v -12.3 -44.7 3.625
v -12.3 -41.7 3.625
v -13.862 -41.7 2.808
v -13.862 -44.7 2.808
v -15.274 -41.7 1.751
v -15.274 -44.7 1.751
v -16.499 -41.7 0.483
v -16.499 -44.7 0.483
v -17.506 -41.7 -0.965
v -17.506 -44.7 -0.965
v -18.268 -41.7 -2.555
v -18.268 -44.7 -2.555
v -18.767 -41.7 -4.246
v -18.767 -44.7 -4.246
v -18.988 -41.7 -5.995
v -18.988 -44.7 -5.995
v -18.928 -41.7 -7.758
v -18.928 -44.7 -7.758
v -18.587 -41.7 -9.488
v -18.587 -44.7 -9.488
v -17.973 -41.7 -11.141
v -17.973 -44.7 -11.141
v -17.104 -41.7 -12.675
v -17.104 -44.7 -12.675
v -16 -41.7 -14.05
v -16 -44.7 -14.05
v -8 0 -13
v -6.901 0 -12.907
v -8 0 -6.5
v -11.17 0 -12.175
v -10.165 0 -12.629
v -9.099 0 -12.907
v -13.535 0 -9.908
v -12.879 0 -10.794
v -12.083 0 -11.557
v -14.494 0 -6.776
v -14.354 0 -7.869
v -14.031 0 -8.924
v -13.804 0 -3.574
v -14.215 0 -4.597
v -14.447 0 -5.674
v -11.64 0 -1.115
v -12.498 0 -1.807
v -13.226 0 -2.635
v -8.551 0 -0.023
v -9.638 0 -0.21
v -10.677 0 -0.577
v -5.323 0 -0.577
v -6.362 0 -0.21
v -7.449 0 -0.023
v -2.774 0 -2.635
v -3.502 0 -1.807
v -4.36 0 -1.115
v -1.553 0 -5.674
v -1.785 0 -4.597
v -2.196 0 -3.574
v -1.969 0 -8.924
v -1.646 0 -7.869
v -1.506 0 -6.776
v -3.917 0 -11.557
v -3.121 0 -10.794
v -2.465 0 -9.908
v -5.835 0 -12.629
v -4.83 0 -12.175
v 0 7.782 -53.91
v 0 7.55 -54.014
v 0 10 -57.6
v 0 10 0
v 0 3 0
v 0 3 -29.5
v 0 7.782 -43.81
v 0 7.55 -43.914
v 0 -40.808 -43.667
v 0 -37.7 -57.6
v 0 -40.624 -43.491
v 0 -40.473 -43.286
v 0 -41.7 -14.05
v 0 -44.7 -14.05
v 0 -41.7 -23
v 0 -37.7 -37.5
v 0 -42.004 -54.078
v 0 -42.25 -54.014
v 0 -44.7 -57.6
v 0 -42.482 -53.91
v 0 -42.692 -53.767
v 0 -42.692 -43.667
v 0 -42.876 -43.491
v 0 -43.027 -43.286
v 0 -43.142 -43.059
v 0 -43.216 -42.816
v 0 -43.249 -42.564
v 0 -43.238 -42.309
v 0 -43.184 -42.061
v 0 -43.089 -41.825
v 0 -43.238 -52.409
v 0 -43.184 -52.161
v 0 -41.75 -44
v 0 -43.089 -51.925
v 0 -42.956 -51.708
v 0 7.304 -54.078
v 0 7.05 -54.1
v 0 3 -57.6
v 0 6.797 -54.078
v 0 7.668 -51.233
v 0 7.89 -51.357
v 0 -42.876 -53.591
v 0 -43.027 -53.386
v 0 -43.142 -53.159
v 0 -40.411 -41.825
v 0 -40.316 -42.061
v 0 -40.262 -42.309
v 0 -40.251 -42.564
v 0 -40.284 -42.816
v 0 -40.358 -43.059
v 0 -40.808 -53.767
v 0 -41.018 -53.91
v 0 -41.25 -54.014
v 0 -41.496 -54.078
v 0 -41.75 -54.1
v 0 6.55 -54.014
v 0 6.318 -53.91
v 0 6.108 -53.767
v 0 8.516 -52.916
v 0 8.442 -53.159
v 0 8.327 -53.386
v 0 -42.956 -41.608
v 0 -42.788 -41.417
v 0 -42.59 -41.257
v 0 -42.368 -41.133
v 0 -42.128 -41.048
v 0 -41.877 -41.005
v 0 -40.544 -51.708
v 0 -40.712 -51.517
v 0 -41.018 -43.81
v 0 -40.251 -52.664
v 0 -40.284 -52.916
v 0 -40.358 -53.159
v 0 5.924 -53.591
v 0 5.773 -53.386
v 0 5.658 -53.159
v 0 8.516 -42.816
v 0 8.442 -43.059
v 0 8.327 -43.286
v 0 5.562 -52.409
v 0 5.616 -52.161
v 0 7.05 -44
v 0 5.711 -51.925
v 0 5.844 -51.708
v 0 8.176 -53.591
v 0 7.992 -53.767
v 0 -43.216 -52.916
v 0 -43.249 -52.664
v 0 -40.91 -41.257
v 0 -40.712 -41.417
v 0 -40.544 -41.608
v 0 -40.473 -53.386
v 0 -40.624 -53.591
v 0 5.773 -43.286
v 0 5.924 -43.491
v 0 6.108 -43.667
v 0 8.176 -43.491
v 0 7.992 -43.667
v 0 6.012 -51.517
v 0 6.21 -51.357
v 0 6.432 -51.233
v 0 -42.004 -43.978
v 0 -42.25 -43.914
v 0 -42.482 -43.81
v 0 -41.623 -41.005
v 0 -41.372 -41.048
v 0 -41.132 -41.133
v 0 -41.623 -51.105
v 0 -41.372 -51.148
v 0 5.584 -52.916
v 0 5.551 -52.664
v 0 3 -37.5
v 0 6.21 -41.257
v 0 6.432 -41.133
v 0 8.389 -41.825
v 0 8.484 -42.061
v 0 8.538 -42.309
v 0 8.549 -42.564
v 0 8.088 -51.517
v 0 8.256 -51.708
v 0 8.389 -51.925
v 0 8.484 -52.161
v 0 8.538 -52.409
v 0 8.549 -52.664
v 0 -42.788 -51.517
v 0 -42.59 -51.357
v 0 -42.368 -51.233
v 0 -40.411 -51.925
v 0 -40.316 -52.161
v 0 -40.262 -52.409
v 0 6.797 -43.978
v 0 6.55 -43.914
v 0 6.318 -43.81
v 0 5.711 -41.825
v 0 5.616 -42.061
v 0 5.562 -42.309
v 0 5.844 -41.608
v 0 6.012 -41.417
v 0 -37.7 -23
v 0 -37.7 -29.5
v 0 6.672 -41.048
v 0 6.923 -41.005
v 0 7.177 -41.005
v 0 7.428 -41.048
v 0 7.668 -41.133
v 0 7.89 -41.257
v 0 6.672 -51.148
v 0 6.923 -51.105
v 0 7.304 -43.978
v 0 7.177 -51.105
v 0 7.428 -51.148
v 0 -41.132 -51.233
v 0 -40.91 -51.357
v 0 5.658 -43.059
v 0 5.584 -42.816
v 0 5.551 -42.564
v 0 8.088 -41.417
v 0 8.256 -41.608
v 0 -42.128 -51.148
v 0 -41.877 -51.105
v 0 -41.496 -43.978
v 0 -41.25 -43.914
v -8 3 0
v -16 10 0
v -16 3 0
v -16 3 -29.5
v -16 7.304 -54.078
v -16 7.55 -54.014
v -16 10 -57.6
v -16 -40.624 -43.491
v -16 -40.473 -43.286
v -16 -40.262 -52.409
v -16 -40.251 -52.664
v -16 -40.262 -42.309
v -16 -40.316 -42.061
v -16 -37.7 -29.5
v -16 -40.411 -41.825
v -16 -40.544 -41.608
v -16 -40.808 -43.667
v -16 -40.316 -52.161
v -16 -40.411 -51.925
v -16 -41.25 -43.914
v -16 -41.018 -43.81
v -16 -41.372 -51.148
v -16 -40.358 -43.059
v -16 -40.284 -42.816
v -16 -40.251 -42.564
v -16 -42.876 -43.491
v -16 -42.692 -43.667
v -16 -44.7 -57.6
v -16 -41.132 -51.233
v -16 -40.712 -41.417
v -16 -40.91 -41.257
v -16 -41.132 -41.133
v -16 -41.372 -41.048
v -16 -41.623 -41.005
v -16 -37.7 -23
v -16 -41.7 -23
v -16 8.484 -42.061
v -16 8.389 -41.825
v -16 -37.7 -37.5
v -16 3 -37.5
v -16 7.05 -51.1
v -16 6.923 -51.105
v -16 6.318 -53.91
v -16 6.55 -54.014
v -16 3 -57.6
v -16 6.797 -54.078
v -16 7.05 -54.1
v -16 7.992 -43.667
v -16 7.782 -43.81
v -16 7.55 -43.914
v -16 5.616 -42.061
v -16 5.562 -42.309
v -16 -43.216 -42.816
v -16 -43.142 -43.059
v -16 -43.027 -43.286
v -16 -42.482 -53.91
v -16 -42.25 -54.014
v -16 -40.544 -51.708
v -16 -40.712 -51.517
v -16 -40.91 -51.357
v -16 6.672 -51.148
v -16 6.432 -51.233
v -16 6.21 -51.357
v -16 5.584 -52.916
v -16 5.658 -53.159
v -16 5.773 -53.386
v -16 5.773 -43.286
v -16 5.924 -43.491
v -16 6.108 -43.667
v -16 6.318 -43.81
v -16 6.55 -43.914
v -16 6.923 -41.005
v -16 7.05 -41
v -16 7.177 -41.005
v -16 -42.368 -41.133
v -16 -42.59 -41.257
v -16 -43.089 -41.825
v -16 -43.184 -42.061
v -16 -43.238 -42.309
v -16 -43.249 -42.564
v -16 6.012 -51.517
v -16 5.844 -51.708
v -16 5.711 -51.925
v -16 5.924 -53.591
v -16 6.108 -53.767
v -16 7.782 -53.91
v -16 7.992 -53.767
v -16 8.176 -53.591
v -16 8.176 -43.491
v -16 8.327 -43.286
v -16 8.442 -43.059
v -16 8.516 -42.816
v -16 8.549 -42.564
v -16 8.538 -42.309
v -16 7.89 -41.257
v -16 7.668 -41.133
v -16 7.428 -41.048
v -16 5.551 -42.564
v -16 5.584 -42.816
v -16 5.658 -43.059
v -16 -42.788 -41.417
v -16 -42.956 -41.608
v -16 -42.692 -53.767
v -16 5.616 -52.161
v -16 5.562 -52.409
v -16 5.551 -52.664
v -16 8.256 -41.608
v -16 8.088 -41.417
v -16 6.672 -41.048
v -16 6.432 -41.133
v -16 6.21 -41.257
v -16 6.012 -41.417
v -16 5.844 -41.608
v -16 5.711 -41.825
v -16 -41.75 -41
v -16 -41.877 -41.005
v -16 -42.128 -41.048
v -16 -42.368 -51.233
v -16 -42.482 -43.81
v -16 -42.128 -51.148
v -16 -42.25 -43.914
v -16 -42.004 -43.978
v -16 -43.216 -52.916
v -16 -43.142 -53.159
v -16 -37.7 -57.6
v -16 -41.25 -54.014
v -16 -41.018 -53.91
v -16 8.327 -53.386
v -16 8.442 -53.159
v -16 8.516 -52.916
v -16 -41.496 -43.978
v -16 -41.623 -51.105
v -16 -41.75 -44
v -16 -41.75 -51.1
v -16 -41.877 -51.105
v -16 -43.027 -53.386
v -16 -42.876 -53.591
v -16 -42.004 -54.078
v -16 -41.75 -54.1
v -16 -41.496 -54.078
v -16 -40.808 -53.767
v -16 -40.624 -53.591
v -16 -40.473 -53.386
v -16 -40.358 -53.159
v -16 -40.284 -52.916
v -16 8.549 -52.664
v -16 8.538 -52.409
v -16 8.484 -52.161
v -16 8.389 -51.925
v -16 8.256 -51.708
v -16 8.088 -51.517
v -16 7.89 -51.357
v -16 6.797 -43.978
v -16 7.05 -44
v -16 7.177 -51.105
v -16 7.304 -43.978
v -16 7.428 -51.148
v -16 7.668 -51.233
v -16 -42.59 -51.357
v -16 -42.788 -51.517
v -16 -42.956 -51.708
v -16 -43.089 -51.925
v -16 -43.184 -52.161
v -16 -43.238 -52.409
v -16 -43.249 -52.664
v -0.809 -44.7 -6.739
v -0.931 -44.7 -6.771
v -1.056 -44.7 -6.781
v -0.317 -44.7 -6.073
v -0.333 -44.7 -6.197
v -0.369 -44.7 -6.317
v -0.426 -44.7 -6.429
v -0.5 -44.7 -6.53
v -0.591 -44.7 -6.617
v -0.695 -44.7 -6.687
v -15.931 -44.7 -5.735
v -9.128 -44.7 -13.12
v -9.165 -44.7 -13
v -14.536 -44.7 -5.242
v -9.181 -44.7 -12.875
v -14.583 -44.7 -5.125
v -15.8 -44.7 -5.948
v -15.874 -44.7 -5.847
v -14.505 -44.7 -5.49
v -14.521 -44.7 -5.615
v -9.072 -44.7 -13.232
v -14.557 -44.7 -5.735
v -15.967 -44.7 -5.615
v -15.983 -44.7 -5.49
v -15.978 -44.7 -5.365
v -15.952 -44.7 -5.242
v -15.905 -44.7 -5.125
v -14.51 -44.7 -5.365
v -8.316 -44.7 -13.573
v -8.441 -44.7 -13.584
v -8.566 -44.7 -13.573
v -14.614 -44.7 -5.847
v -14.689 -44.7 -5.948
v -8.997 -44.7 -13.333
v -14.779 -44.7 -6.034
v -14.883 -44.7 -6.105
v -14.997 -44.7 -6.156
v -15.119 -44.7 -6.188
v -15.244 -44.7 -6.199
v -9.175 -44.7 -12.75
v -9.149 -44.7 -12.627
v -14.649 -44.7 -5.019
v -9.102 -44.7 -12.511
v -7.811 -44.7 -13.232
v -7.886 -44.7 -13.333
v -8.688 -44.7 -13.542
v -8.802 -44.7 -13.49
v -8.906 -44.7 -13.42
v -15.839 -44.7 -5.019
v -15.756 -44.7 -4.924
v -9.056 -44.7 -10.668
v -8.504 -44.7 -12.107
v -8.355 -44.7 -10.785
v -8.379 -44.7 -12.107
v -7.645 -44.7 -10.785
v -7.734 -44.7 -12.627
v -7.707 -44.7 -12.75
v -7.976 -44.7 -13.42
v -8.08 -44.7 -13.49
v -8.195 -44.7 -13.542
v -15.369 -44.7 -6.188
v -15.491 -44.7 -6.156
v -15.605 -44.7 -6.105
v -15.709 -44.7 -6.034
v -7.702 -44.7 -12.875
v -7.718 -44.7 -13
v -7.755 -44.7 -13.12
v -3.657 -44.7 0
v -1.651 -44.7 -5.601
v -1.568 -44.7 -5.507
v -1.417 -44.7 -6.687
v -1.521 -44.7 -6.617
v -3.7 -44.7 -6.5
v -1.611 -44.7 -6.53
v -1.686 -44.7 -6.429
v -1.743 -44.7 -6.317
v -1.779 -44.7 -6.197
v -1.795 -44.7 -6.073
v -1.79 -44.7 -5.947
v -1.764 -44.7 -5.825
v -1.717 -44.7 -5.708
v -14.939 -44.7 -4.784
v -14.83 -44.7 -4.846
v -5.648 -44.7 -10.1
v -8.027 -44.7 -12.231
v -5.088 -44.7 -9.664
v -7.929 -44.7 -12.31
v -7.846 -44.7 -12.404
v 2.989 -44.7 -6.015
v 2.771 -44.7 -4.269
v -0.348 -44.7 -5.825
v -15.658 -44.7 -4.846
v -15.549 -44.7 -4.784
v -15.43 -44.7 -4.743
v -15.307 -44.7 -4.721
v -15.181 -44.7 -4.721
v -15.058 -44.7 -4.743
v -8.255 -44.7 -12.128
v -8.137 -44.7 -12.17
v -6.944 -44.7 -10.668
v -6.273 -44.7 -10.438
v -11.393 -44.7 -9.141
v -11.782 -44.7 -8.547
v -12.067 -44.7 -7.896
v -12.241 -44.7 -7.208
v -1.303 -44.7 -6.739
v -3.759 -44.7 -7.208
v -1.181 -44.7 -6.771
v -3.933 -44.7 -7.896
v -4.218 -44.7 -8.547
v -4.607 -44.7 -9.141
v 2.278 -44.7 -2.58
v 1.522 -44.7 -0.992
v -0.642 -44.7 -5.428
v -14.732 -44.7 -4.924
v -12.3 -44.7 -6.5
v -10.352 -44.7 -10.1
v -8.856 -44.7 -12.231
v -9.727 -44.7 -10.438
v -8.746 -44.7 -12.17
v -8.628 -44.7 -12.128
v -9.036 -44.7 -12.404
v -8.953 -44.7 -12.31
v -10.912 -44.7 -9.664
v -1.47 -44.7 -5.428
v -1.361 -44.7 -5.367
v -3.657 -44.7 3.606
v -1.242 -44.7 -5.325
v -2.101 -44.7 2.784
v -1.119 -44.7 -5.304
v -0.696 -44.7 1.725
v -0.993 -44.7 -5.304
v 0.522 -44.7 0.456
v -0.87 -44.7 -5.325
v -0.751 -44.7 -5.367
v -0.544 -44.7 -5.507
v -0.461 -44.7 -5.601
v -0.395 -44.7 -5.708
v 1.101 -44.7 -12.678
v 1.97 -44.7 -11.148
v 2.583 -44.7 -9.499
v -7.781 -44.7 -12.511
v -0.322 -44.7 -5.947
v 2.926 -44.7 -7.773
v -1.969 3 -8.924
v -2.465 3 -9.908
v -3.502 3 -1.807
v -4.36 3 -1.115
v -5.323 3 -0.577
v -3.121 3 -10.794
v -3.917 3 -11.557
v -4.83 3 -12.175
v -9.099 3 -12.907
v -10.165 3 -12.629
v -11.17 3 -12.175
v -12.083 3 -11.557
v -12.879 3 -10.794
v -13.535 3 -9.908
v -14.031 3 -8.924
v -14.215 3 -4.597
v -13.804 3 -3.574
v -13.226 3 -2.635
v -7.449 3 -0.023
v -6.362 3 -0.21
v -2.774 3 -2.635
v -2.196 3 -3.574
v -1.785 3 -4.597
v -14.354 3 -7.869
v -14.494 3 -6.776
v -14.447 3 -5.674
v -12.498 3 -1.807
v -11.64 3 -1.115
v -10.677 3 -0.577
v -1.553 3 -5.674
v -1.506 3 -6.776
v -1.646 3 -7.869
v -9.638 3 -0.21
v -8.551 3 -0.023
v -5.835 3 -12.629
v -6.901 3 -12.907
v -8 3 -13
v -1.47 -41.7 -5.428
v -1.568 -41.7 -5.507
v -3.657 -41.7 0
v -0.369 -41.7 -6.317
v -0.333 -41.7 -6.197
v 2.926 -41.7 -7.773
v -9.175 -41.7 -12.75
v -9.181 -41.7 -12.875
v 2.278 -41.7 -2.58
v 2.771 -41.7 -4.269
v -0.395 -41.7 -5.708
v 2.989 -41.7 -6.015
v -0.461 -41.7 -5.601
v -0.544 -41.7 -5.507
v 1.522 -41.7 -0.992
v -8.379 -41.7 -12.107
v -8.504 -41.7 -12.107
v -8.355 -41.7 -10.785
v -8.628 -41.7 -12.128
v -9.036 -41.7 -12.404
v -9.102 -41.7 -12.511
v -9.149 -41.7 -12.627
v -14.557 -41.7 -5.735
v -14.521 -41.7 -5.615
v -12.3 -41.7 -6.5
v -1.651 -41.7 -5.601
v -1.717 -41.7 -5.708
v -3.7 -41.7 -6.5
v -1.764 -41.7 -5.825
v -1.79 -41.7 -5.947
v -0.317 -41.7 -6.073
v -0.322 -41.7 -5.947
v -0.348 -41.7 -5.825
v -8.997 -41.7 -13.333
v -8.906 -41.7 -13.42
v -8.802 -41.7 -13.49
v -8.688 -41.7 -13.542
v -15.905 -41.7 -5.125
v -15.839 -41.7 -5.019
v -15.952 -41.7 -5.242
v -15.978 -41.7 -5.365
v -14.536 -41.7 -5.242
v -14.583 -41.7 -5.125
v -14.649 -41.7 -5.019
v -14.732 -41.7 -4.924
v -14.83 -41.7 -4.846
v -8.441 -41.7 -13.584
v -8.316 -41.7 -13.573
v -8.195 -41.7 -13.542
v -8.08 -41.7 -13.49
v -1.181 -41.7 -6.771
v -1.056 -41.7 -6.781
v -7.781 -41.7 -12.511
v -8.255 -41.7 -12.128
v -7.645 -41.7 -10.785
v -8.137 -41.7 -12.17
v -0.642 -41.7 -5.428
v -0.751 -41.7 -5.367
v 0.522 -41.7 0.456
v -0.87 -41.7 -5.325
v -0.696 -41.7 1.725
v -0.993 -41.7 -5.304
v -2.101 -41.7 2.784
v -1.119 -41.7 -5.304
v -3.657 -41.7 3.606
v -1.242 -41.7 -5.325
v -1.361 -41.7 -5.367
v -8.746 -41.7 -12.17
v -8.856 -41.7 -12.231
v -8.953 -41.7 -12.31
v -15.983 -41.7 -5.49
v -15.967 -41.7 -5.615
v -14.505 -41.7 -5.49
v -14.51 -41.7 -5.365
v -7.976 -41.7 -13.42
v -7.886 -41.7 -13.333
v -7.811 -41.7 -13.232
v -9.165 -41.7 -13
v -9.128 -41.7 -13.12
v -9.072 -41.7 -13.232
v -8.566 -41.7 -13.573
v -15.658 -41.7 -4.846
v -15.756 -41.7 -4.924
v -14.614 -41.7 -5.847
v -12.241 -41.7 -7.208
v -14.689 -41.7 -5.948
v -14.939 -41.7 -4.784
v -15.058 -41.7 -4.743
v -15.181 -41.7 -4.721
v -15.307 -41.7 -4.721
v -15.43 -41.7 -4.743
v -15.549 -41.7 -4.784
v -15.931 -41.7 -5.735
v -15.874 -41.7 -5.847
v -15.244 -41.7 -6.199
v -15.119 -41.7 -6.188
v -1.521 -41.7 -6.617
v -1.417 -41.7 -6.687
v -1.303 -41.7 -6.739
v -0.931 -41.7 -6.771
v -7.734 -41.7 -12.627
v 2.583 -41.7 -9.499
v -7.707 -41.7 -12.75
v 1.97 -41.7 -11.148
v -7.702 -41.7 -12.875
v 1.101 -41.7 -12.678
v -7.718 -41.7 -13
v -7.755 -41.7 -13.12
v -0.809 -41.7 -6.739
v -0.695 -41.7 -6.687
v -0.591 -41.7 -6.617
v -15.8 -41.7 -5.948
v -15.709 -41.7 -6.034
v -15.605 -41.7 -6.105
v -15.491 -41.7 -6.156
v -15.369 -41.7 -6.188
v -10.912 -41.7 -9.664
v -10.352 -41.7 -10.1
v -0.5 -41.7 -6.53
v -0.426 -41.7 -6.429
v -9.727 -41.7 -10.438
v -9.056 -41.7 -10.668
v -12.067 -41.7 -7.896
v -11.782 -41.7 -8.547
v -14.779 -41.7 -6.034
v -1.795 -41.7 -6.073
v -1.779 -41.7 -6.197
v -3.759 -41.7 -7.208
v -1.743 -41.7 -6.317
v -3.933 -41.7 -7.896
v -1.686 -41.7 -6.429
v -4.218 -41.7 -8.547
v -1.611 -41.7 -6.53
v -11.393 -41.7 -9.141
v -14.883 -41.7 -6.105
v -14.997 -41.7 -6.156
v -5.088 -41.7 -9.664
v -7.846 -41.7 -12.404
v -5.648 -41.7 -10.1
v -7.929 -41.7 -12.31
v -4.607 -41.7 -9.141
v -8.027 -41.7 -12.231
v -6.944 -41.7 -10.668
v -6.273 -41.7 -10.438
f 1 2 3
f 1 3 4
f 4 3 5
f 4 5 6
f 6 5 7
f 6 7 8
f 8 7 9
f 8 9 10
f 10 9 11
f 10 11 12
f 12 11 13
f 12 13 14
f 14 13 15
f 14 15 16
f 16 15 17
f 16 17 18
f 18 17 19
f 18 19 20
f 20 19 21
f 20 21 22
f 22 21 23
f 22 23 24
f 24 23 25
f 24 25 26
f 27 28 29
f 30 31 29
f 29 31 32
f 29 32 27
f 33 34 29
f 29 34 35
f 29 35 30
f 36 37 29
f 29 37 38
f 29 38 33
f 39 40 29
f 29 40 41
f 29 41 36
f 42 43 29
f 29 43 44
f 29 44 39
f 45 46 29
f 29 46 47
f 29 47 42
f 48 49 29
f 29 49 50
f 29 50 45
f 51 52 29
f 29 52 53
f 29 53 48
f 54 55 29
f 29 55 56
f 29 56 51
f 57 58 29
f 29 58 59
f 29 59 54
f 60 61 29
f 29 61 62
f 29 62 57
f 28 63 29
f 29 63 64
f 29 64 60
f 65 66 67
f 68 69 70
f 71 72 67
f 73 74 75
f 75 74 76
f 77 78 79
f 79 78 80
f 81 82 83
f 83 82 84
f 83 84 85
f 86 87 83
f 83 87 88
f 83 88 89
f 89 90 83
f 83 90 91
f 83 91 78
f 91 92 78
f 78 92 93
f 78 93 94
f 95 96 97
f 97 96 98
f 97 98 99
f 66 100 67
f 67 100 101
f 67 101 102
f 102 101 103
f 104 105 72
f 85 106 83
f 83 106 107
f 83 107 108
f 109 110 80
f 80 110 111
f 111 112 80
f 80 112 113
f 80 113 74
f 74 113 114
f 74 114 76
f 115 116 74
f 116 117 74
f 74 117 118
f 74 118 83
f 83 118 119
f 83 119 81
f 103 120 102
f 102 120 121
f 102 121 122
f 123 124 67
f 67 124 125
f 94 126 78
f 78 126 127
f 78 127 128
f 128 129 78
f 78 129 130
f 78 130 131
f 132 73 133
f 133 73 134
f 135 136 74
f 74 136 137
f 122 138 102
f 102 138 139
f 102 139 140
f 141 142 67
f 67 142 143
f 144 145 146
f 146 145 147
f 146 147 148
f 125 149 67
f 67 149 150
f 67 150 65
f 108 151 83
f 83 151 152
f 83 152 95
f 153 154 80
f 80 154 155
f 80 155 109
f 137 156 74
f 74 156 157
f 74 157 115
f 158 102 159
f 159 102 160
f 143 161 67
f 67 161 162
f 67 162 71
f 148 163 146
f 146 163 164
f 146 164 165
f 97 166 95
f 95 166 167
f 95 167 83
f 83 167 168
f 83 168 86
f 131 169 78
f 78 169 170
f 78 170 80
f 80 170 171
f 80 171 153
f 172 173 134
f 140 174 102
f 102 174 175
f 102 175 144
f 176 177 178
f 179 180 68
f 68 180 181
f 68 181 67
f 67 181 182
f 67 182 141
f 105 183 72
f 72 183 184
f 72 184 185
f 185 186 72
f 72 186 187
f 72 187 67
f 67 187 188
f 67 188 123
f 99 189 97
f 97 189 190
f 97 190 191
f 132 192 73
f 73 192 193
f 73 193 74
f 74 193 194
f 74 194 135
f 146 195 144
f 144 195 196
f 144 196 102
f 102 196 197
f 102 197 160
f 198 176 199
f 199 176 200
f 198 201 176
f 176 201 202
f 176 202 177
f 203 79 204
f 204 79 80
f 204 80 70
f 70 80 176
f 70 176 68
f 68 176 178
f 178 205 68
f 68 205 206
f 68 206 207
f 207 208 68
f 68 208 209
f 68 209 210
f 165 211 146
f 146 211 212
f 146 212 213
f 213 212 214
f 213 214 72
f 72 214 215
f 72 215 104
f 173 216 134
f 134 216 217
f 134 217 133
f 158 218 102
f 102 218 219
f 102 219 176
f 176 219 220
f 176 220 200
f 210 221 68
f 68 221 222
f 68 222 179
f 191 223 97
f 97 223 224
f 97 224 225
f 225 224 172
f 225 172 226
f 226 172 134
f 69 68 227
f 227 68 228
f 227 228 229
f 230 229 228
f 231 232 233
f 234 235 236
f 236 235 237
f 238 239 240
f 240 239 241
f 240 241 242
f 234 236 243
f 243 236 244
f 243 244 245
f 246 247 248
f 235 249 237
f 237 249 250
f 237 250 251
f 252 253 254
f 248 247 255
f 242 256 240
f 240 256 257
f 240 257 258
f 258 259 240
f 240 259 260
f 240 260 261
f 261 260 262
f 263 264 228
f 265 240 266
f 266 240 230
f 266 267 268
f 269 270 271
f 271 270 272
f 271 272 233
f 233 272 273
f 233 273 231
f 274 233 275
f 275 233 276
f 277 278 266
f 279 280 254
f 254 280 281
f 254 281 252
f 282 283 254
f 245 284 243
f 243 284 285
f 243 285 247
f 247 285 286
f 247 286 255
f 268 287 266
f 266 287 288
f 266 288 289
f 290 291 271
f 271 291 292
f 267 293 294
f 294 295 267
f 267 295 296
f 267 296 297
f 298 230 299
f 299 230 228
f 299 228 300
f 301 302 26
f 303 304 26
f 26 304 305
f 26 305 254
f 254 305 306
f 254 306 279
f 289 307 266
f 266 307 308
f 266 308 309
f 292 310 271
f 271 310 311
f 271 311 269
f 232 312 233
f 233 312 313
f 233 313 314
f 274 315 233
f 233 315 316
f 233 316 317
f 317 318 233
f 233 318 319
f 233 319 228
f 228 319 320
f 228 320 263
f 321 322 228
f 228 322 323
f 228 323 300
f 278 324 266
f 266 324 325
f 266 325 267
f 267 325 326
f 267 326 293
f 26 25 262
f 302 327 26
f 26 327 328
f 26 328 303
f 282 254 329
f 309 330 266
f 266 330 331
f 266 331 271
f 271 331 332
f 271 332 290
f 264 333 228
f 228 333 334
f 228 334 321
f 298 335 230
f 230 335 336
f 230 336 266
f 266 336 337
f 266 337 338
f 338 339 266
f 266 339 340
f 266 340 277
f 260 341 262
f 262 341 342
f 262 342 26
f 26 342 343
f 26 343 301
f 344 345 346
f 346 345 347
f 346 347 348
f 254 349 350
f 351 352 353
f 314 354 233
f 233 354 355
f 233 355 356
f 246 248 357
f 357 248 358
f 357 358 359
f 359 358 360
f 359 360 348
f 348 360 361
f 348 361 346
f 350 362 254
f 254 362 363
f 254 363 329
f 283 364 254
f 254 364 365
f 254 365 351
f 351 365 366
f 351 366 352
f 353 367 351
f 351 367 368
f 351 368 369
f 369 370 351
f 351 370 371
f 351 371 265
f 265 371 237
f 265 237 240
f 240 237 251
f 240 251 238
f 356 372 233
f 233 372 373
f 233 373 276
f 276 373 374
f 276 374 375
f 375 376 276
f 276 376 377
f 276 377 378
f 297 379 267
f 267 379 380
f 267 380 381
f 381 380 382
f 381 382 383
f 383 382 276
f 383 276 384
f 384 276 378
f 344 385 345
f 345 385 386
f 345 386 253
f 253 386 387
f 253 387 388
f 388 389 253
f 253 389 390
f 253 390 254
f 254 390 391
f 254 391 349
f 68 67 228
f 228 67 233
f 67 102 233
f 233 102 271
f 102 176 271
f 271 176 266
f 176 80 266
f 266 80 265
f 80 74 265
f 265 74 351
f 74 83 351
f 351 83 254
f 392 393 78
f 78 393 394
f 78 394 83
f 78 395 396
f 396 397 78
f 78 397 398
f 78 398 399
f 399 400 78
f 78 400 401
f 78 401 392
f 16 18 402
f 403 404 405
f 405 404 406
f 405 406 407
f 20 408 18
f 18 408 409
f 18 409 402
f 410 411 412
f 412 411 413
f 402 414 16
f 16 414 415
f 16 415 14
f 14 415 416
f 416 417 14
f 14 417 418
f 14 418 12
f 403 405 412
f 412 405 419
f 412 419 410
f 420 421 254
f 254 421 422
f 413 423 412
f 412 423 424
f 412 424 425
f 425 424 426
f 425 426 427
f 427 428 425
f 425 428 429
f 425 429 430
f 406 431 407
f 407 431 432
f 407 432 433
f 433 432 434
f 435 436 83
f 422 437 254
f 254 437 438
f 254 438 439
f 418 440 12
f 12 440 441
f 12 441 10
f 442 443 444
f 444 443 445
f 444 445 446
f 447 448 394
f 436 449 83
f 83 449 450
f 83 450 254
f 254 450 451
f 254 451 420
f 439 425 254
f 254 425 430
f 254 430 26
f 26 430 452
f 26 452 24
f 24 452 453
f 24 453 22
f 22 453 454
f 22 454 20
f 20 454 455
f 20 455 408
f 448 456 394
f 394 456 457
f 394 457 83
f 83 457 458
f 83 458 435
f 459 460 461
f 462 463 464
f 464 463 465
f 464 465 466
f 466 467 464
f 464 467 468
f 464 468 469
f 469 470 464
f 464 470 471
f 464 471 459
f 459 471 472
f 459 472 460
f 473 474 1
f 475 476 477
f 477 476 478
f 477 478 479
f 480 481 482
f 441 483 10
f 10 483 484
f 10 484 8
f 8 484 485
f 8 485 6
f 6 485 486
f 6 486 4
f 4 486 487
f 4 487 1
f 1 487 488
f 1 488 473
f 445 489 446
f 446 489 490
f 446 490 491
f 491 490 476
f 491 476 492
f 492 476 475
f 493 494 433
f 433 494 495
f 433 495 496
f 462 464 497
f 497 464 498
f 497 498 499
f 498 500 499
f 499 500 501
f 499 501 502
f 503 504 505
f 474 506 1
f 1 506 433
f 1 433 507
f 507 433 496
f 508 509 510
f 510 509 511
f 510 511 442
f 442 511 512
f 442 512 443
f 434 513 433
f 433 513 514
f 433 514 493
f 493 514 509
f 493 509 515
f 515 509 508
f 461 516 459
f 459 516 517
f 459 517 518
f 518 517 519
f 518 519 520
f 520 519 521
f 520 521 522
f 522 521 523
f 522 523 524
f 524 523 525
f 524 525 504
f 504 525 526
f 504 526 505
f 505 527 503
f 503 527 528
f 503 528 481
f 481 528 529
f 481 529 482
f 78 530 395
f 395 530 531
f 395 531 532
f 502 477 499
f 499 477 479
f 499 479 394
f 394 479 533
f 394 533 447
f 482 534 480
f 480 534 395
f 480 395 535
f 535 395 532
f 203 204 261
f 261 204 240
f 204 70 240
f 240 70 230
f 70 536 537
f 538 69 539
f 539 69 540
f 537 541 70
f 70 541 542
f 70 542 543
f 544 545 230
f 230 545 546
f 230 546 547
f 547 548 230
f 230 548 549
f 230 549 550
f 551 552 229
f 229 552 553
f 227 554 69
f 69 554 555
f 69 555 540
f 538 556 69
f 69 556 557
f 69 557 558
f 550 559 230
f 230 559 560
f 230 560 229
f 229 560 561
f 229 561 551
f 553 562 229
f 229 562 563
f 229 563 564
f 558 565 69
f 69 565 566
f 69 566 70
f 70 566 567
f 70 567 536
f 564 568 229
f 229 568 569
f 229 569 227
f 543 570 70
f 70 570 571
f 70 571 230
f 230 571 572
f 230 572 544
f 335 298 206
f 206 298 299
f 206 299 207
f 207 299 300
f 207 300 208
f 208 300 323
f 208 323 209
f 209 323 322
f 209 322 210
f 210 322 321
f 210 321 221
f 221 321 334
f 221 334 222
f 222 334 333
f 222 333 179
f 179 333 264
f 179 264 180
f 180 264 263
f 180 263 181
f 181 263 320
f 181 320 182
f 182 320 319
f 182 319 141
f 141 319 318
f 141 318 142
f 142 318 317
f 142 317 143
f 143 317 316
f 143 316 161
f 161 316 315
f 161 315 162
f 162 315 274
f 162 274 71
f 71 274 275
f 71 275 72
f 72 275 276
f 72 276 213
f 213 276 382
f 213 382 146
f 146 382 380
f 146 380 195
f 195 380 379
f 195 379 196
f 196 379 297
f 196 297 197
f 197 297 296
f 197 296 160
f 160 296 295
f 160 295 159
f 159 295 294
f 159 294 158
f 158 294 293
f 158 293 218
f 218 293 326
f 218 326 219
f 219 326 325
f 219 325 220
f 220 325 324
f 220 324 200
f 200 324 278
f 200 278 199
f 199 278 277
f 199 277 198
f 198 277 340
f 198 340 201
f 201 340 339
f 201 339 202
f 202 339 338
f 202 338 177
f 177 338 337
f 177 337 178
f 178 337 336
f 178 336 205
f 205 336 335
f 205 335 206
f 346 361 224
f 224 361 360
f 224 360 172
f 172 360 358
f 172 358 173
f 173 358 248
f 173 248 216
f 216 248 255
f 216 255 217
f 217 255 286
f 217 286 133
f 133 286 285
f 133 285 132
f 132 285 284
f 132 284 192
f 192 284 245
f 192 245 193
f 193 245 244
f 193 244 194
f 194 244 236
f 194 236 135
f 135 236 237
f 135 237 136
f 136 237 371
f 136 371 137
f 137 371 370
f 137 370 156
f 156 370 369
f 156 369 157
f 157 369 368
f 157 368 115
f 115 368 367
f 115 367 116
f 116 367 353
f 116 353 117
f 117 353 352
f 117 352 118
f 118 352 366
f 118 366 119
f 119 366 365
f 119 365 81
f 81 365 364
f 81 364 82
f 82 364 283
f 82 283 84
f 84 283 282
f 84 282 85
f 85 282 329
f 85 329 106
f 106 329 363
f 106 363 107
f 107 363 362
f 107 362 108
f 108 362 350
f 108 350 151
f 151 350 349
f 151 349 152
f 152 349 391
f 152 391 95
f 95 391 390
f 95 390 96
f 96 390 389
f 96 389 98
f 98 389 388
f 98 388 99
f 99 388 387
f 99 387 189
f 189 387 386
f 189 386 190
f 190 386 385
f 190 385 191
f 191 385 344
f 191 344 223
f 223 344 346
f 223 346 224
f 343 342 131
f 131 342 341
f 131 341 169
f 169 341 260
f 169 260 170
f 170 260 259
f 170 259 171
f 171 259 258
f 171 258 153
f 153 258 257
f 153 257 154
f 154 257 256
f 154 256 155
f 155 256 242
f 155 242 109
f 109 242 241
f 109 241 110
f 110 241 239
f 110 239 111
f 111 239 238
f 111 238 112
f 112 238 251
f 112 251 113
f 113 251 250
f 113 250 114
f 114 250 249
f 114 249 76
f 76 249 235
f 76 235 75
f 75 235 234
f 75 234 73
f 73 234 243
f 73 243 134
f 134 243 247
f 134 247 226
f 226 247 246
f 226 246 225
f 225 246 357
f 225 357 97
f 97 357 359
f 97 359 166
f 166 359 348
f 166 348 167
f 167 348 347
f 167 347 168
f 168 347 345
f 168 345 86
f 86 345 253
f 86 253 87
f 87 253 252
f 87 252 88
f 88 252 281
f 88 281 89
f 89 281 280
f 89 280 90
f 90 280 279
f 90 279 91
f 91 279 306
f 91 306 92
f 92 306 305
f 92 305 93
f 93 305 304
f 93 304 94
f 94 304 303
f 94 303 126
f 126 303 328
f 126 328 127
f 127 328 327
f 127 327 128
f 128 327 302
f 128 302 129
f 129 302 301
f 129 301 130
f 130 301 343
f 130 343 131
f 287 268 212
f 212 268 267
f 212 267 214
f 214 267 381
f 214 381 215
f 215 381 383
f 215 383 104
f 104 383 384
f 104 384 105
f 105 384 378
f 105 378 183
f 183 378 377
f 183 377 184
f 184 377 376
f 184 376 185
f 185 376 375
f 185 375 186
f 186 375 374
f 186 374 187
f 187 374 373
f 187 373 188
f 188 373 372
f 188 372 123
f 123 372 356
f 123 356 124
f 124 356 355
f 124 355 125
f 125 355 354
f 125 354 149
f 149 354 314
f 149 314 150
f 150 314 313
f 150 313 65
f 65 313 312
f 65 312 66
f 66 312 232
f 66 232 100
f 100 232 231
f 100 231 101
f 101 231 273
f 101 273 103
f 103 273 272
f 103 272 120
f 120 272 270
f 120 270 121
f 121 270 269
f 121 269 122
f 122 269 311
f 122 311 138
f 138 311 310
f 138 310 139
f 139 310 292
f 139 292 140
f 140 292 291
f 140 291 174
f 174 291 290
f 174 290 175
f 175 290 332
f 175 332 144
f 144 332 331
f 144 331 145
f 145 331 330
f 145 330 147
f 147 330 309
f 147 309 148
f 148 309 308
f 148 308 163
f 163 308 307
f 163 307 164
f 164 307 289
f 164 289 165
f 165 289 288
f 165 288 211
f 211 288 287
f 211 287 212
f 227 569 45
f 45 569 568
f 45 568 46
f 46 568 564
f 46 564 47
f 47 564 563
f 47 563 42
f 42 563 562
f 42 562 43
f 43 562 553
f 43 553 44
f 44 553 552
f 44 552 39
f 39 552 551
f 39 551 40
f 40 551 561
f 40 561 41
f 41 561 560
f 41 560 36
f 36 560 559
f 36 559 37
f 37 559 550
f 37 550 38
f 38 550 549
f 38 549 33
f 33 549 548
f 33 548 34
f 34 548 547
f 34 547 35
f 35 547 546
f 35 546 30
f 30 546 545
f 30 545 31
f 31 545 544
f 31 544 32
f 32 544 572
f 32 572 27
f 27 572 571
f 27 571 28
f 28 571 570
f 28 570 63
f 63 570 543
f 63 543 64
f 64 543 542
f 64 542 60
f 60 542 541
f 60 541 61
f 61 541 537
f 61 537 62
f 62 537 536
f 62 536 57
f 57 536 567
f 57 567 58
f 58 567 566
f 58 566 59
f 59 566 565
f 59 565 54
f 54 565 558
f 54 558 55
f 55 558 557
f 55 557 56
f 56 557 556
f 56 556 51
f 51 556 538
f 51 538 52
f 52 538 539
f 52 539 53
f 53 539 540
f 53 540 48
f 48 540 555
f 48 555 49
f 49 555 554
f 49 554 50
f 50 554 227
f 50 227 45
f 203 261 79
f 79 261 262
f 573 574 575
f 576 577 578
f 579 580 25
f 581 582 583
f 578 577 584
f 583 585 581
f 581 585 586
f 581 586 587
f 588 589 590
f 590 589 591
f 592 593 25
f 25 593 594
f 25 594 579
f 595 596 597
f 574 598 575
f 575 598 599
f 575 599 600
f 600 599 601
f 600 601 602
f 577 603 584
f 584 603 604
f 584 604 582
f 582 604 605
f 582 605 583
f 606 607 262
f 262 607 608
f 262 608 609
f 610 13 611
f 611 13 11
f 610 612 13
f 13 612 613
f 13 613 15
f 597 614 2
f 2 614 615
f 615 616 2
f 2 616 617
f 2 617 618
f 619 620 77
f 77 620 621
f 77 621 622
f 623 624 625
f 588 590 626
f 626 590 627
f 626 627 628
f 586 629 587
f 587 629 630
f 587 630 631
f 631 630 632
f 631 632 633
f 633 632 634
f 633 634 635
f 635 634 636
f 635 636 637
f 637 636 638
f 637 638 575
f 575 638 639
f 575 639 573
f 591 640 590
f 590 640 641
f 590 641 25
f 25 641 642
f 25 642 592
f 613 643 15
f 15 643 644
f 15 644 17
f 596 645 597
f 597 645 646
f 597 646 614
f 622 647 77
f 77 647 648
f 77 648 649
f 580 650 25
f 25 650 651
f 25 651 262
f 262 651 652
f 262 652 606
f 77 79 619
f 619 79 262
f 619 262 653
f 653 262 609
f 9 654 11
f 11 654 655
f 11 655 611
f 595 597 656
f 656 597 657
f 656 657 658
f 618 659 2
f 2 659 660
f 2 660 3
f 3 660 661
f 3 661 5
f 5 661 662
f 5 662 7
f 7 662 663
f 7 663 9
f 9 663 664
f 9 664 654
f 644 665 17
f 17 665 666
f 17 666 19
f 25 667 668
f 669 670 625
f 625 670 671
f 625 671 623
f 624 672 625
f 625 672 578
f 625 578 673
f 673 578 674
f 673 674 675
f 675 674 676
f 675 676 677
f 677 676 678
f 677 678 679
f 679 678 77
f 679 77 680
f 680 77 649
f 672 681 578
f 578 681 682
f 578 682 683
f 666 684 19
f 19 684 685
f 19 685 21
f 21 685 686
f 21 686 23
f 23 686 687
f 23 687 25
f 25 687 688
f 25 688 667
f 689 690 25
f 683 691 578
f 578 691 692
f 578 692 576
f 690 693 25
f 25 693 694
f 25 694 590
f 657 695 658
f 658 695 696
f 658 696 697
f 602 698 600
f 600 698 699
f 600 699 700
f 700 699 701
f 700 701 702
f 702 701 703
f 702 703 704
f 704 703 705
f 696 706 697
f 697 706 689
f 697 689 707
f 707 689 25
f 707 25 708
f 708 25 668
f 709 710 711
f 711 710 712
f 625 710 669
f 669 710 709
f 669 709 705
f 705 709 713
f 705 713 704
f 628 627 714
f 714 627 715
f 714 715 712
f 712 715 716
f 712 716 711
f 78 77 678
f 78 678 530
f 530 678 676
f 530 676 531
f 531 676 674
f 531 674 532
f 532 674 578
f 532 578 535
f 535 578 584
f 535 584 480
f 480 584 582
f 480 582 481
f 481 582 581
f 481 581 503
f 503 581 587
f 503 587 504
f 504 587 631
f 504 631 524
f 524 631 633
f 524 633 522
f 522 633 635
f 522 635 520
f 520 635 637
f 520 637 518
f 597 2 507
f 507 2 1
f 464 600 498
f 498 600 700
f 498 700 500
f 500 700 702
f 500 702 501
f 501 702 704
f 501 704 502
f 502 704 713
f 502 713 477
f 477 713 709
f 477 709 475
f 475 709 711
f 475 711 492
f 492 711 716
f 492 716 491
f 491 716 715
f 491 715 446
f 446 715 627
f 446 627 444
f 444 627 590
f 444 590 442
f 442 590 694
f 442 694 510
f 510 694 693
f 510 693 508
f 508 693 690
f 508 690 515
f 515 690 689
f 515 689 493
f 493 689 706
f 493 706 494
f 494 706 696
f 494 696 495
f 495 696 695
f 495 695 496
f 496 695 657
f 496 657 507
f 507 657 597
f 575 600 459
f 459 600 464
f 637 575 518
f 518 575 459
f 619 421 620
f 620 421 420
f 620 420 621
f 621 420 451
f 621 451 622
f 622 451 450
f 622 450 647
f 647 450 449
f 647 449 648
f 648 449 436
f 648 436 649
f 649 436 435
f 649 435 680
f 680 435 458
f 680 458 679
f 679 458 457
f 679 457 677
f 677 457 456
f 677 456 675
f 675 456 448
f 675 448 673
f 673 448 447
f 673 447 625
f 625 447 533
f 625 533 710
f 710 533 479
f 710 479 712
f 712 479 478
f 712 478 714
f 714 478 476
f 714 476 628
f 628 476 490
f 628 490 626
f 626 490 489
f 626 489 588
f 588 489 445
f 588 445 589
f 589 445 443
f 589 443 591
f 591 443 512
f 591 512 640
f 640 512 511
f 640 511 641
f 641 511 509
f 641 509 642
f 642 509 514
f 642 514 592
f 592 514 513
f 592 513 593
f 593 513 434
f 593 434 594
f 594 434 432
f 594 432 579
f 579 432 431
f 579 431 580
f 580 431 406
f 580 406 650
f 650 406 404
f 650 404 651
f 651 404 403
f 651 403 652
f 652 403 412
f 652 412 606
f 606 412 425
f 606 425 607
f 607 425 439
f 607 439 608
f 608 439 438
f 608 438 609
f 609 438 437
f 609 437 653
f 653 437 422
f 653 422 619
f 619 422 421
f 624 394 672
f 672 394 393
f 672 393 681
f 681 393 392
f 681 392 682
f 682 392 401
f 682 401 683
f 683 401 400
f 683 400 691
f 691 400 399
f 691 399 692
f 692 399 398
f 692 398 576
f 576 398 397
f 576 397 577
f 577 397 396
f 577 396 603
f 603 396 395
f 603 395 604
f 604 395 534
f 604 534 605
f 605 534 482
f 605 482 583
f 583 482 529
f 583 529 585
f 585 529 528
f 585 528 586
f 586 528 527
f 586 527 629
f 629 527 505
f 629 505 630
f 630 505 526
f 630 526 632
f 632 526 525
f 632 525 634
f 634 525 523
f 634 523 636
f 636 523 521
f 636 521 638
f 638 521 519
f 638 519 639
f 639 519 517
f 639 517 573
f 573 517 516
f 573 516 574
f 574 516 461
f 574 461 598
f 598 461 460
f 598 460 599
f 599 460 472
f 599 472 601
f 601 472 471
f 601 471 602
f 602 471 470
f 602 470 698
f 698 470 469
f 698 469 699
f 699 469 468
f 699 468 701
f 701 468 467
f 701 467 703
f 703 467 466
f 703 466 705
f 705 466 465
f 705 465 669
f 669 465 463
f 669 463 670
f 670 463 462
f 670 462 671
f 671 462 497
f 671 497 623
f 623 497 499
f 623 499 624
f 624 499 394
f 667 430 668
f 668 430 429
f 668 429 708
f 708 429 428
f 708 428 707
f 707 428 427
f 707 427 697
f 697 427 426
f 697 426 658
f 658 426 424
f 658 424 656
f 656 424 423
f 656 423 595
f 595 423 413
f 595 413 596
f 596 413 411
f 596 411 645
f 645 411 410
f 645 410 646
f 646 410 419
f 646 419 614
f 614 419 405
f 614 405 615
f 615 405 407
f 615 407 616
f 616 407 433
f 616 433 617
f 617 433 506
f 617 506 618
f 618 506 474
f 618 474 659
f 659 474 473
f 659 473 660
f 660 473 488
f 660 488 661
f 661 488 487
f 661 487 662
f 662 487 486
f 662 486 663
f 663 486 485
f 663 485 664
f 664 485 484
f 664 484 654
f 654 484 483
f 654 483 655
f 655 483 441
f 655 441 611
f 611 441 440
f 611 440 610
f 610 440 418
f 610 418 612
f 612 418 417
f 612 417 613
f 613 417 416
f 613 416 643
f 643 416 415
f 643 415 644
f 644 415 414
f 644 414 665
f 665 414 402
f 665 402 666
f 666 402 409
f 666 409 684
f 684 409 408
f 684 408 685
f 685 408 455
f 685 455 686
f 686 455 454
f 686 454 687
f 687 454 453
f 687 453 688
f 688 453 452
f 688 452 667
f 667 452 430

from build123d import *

# Parameters (mm, degrees)
EXTRUDE_1_DEPTH     = 16
CUT_EXTRUDE_1_REACH = 76.645
CUT_EXTRUDE_2_DEPTH = 3
CUT_EXTRUDE_5_REACH = 76.645
SKETCH_7_W          = 23
SKETCH_7_H          = 4
SKETCH_10_R         = 11
EXTRUDE_3_DEPTH     = 3
CUT_EXTRUDE_4_REACH = 79.162
CUT_EXTRUDE_6_REACH = 83.675
SKETCH_11_R         = 0.74


with BuildPart() as part:
    # Sketch 3D_2 → Extrude 1 (new body)
    with BuildSketch(Plane(origin=(0, 0, 0), x_dir=(0, -0.6130856686286148, -0.7900164320583494), z_dir=(1, 0, 0))):
        Polygon((0, 0), (10.270213617, 7.970113692), (8.430956611, 10.340162988), (21.46622774, 20.456076521), (46.418814453, -11.697592264), (23.113329707, -29.783619489), (27.404929388, -35.313734513), (72.909875874, 0), (68.618276194, 5.530115024), (52.738945909, -6.792906915), (27.786359196, 25.36076187), (43.665689481, 37.683783809), (39.3740898, 43.213898834), (-6.130856686, 7.900164321), align=None)
    extrude(amount=-EXTRUDE_1_DEPTH)

    # Sketch 3 → Cut-Extrude 1 (cut, up to next)
    with BuildSketch(Plane(origin=(0, 0, 0), x_dir=(0, 0, -1), z_dir=(1, 0, 0)), mode=Mode.PRIVATE) as cut_extrude_1_sk1:
        with BuildLine():
            ThreePointArc((41, 7.05), (41.439339828, 5.989339828), (42.5, 5.55))
            Line((42.5, 5.55), (42.5, 7.05))
            Line((42.5, 7.05), (41, 7.05))
        make_face()
    cut_extrude_1_tool1 = extrude(cut_extrude_1_sk1.sketch, amount=-CUT_EXTRUDE_1_REACH, mode=Mode.PRIVATE) & part.part
    # Sketch 3 → Cut-Extrude 1 (cut, up to next)
    with BuildSketch(Plane(origin=(0, 0, 0), x_dir=(0, 0, -1), z_dir=(1, 0, 0)), mode=Mode.PRIVATE) as cut_extrude_1_sk2:
        with BuildLine():
            Line((42.5, 7.05), (42.5, 5.55))
            ThreePointArc((42.5, 5.55), (43.560660172, 5.989339828), (44, 7.05))
            ThreePointArc((44, 7.05), (42.5, 8.55), (41, 7.05))
            Line((41, 7.05), (42.5, 7.05))
        make_face()
    cut_extrude_1_tool2 = extrude(cut_extrude_1_sk2.sketch, amount=-CUT_EXTRUDE_1_REACH, mode=Mode.PRIVATE) & part.part
    # Sketch 3 → Cut-Extrude 1 (cut, up to next)
    with BuildSketch(Plane(origin=(0, 0, 0), x_dir=(0, 0, -1), z_dir=(1, 0, 0)), mode=Mode.PRIVATE) as cut_extrude_1_sk3:
        with BuildLine():
            ThreePointArc((41, 7.05), (41.439339828, 5.989339828), (42.5, 5.55))
            Line((42.5, 5.55), (42.5, 7.05))
            Line((42.5, 7.05), (41, 7.05))
        make_face()
    cut_extrude_1_tool3 = extrude(cut_extrude_1_sk3.sketch, amount=-CUT_EXTRUDE_1_REACH, mode=Mode.PRIVATE) & part.part
    # Sketch 3 → Cut-Extrude 1 (cut, up to next)
    with BuildSketch(Plane(origin=(0, 0, 0), x_dir=(0, 0, -1), z_dir=(1, 0, 0)), mode=Mode.PRIVATE) as cut_extrude_1_sk4:
        with BuildLine():
            Line((42.5, 7.05), (42.5, 5.55))
            ThreePointArc((42.5, 5.55), (43.560660172, 5.989339828), (44, 7.05))
            ThreePointArc((44, 7.05), (42.5, 8.55), (41, 7.05))
            Line((41, 7.05), (42.5, 7.05))
        make_face()
    cut_extrude_1_tool4 = extrude(cut_extrude_1_sk4.sketch, amount=-CUT_EXTRUDE_1_REACH, mode=Mode.PRIVATE) & part.part
    # Sketch 3 → Cut-Extrude 1 (cut, up to next)
    with BuildSketch(Plane(origin=(0, 0, 0), x_dir=(0, 0, -1), z_dir=(1, 0, 0)), mode=Mode.PRIVATE) as cut_extrude_1_sk5:
        with BuildLine():
            ThreePointArc((54.1, 7.05), (51.539339828, 8.110660172), (52.6, 5.55))
            Line((52.6, 5.55), (52.6, 7.05))
            Line((52.6, 7.05), (54.1, 7.05))
        make_face()
    cut_extrude_1_tool5 = extrude(cut_extrude_1_sk5.sketch, amount=-CUT_EXTRUDE_1_REACH, mode=Mode.PRIVATE) & part.part
    # Sketch 3 → Cut-Extrude 1 (cut, up to next)
    with BuildSketch(Plane(origin=(0, 0, 0), x_dir=(0, 0, -1), z_dir=(1, 0, 0)), mode=Mode.PRIVATE) as cut_extrude_1_sk6:
        with BuildLine():
            Line((52.6, 7.05), (52.6, 5.55))
            ThreePointArc((52.6, 5.55), (53.660660172, 5.989339828), (54.1, 7.05))
            Line((54.1, 7.05), (52.6, 7.05))
        make_face()
    cut_extrude_1_tool6 = extrude(cut_extrude_1_sk6.sketch, amount=-CUT_EXTRUDE_1_REACH, mode=Mode.PRIVATE) & part.part
    # Sketch 3 → Cut-Extrude 1 (cut, up to next)
    with BuildSketch(Plane(origin=(0, 0, 0), x_dir=(0, 0, -1), z_dir=(1, 0, 0)), mode=Mode.PRIVATE) as cut_extrude_1_sk7:
        with BuildLine():
            ThreePointArc((54.1, 7.05), (51.539339828, 8.110660172), (52.6, 5.55))
            Line((52.6, 5.55), (52.6, 7.05))
            Line((52.6, 7.05), (54.1, 7.05))
        make_face()
    cut_extrude_1_tool7 = extrude(cut_extrude_1_sk7.sketch, amount=-CUT_EXTRUDE_1_REACH, mode=Mode.PRIVATE) & part.part
    # Sketch 3 → Cut-Extrude 1 (cut, up to next)
    with BuildSketch(Plane(origin=(0, 0, 0), x_dir=(0, 0, -1), z_dir=(1, 0, 0)), mode=Mode.PRIVATE) as cut_extrude_1_sk8:
        with BuildLine():
            Line((52.6, 7.05), (52.6, 5.55))
            ThreePointArc((52.6, 5.55), (53.660660172, 5.989339828), (54.1, 7.05))
            Line((54.1, 7.05), (52.6, 7.05))
        make_face()
    cut_extrude_1_tool8 = extrude(cut_extrude_1_sk8.sketch, amount=-CUT_EXTRUDE_1_REACH, mode=Mode.PRIVATE) & part.part
    # Sketch 3 → Cut-Extrude 1 (cut, up to next)
    with BuildSketch(Plane(origin=(0, 0, 0), x_dir=(0, 0, -1), z_dir=(1, 0, 0)), mode=Mode.PRIVATE) as cut_extrude_1_sk9:
        with BuildLine():
            ThreePointArc((44, -41.75), (43.560660172, -40.689339828), (42.5, -40.25))
            Line((42.5, -40.25), (42.5, -41.75))
            Line((42.5, -41.75), (41, -41.75))
            ThreePointArc((41, -41.75), (42.5, -43.25), (44, -41.75))
        make_face()
    cut_extrude_1_tool9 = extrude(cut_extrude_1_sk9.sketch, amount=-CUT_EXTRUDE_1_REACH, mode=Mode.PRIVATE) & part.part
    # Sketch 3 → Cut-Extrude 1 (cut, up to next)
    with BuildSketch(Plane(origin=(0, 0, 0), x_dir=(0, 0, -1), z_dir=(1, 0, 0)), mode=Mode.PRIVATE) as cut_extrude_1_sk10:
        with BuildLine():
            Line((42.5, -41.75), (42.5, -40.25))
            ThreePointArc((42.5, -40.25), (41.439339828, -40.689339828), (41, -41.75))
            Line((41, -41.75), (42.5, -41.75))
        make_face()
    cut_extrude_1_tool10 = extrude(cut_extrude_1_sk10.sketch, amount=-CUT_EXTRUDE_1_REACH, mode=Mode.PRIVATE) & part.part
    # Sketch 3 → Cut-Extrude 1 (cut, up to next)
    with BuildSketch(Plane(origin=(0, 0, 0), x_dir=(0, 0, -1), z_dir=(1, 0, 0)), mode=Mode.PRIVATE) as cut_extrude_1_sk11:
        with BuildLine():
            ThreePointArc((44, -41.75), (43.560660172, -40.689339828), (42.5, -40.25))
            Line((42.5, -40.25), (42.5, -41.75))
            Line((42.5, -41.75), (41, -41.75))
            ThreePointArc((41, -41.75), (42.5, -43.25), (44, -41.75))
        make_face()
    cut_extrude_1_tool11 = extrude(cut_extrude_1_sk11.sketch, amount=-CUT_EXTRUDE_1_REACH, mode=Mode.PRIVATE) & part.part
    # Sketch 3 → Cut-Extrude 1 (cut, up to next)
    with BuildSketch(Plane(origin=(0, 0, 0), x_dir=(0, 0, -1), z_dir=(1, 0, 0)), mode=Mode.PRIVATE) as cut_extrude_1_sk12:
        with BuildLine():
            Line((42.5, -41.75), (42.5, -40.25))
            ThreePointArc((42.5, -40.25), (41.439339828, -40.689339828), (41, -41.75))
            Line((41, -41.75), (42.5, -41.75))
        make_face()
    cut_extrude_1_tool12 = extrude(cut_extrude_1_sk12.sketch, amount=-CUT_EXTRUDE_1_REACH, mode=Mode.PRIVATE) & part.part
    # Sketch 3 → Cut-Extrude 1 (cut, up to next)
    with BuildSketch(Plane(origin=(0, 0, 0), x_dir=(0, 0, -1), z_dir=(1, 0, 0)), mode=Mode.PRIVATE) as cut_extrude_1_sk13:
        with BuildLine():
            ThreePointArc((54.1, -41.75), (53.660660172, -40.689339828), (52.6, -40.25))
            Line((52.6, -40.25), (52.6, -41.75))
            Line((52.6, -41.75), (54.1, -41.75))
        make_face()
    cut_extrude_1_tool13 = extrude(cut_extrude_1_sk13.sketch, amount=-CUT_EXTRUDE_1_REACH, mode=Mode.PRIVATE) & part.part
    # Sketch 3 → Cut-Extrude 1 (cut, up to next)
    with BuildSketch(Plane(origin=(0, 0, 0), x_dir=(0, 0, -1), z_dir=(1, 0, 0)), mode=Mode.PRIVATE) as cut_extrude_1_sk14:
        with BuildLine():
            Line((52.6, -41.75), (52.6, -40.25))
            ThreePointArc((52.6, -40.25), (51.539339828, -42.810660172), (54.1, -41.75))
            Line((54.1, -41.75), (52.6, -41.75))
        make_face()
    cut_extrude_1_tool14 = extrude(cut_extrude_1_sk14.sketch, amount=-CUT_EXTRUDE_1_REACH, mode=Mode.PRIVATE) & part.part
    # Sketch 3 → Cut-Extrude 1 (cut, up to next)
    with BuildSketch(Plane(origin=(0, 0, 0), x_dir=(0, 0, -1), z_dir=(1, 0, 0)), mode=Mode.PRIVATE) as cut_extrude_1_sk15:
        with BuildLine():
            ThreePointArc((54.1, -41.75), (53.660660172, -40.689339828), (52.6, -40.25))
            Line((52.6, -40.25), (52.6, -41.75))
            Line((52.6, -41.75), (54.1, -41.75))
        make_face()
    cut_extrude_1_tool15 = extrude(cut_extrude_1_sk15.sketch, amount=-CUT_EXTRUDE_1_REACH, mode=Mode.PRIVATE) & part.part
    # Sketch 3 → Cut-Extrude 1 (cut, up to next)
    with BuildSketch(Plane(origin=(0, 0, 0), x_dir=(0, 0, -1), z_dir=(1, 0, 0)), mode=Mode.PRIVATE) as cut_extrude_1_sk16:
        with BuildLine():
            Line((52.6, -41.75), (52.6, -40.25))
            ThreePointArc((52.6, -40.25), (51.539339828, -42.810660172), (54.1, -41.75))
            Line((54.1, -41.75), (52.6, -41.75))
        make_face()
    cut_extrude_1_tool16 = extrude(cut_extrude_1_sk16.sketch, amount=-CUT_EXTRUDE_1_REACH, mode=Mode.PRIVATE) & part.part
    add(cut_extrude_1_tool1.solids().sort_by_distance((0, 6.41338, -41.86338))[0], mode=Mode.SUBTRACT)
    add(cut_extrude_1_tool2.solids().sort_by_distance((0, 7.262207, -42.712207))[0], mode=Mode.SUBTRACT)
    add(cut_extrude_1_tool3.solids().sort_by_distance((0, 6.41338, -41.86338))[0], mode=Mode.SUBTRACT)
    add(cut_extrude_1_tool4.solids().sort_by_distance((0, 7.262207, -42.712207))[0], mode=Mode.SUBTRACT)
    add(cut_extrude_1_tool5.solids().sort_by_distance((0, 7.262207, -52.387793))[0], mode=Mode.SUBTRACT)
    add(cut_extrude_1_tool6.solids().sort_by_distance((0, 6.41338, -53.23662))[0], mode=Mode.SUBTRACT)
    add(cut_extrude_1_tool7.solids().sort_by_distance((0, 7.262207, -52.387793))[0], mode=Mode.SUBTRACT)
    add(cut_extrude_1_tool8.solids().sort_by_distance((0, 6.41338, -53.23662))[0], mode=Mode.SUBTRACT)
    add(cut_extrude_1_tool9.solids().sort_by_distance((0, -41.962207, -42.712207))[0], mode=Mode.SUBTRACT)
    add(cut_extrude_1_tool10.solids().sort_by_distance((0, -41.11338, -41.86338))[0], mode=Mode.SUBTRACT)
    add(cut_extrude_1_tool11.solids().sort_by_distance((0, -41.962207, -42.712207))[0], mode=Mode.SUBTRACT)
    add(cut_extrude_1_tool12.solids().sort_by_distance((0, -41.11338, -41.86338))[0], mode=Mode.SUBTRACT)
    add(cut_extrude_1_tool13.solids().sort_by_distance((0, -41.11338, -53.23662))[0], mode=Mode.SUBTRACT)
    add(cut_extrude_1_tool14.solids().sort_by_distance((0, -41.962207, -52.387793))[0], mode=Mode.SUBTRACT)
    add(cut_extrude_1_tool15.solids().sort_by_distance((0, -41.11338, -53.23662))[0], mode=Mode.SUBTRACT)
    add(cut_extrude_1_tool16.solids().sort_by_distance((0, -41.962207, -52.387793))[0], mode=Mode.SUBTRACT)

    # Sketch 4 → Cut-Extrude 2 (cut)
    with BuildSketch(Plane.XZ):
        with BuildLine():
            Line((-8, 0), (-16, 0))
            Line((-16, 0), (-16, -6.5))
            Line((-16, -6.5), (-14.5, -6.5))
            ThreePointArc((-14.5, -6.5), (-12.596194078, -1.903805922), (-8, 0))
        make_face()
        with BuildLine():
            Line((-14.5, -6.5), (-16, -6.5))
            Line((-16, -6.5), (-16, -13))
            Line((-16, -13), (-8.000000015, -13))
            ThreePointArc((-8.000000015, -13), (-12.596194083, -11.096194072), (-14.5, -6.5))
        make_face()
        with BuildLine():
            Line((0, 0), (-8, 0))
            ThreePointArc((-8, 0), (-3.403805922, -1.903805922), (-1.5, -6.5))
            ThreePointArc((-1.5, -6.5), (-3.403805928, -11.096194083), (-8.000000015, -13))
            Line((-8.000000015, -13), (0, -13))
            Line((0, -13), (0, 0))
        make_face()
    extrude(amount=-CUT_EXTRUDE_2_DEPTH, mode=Mode.SUBTRACT)

    # Sketch 7 → Cut-Extrude 5 (cut, up to next)
    with BuildSketch(Plane(origin=(0, 0, 0), x_dir=(0, 0, -1), z_dir=(1, 0, 0)), mode=Mode.PRIVATE) as cut_extrude_5_sk1:
        with Locations((11.5, -39.7)):
            Rectangle(SKETCH_7_W, SKETCH_7_H)
    cut_extrude_5_tool1 = extrude(cut_extrude_5_sk1.sketch, amount=-CUT_EXTRUDE_5_REACH, mode=Mode.PRIVATE) & part.part
    add(cut_extrude_5_tool1.solids().sort_by_distance((0, -39.7, -11.5))[0], mode=Mode.SUBTRACT)

    # Sketch 10 → Extrude 3 (add)
    with BuildSketch(Plane(origin=(0, -41.7, 0), x_dir=(1, 0, 0), z_dir=(0, 1, 0))):
        with Locations((-8, 6.5)):
            Circle(SKETCH_10_R)
    extrude(amount=-EXTRUDE_3_DEPTH)

    # Sketch 5 → Cut-Extrude 4 (cut, up to next)
    with BuildSketch(Plane(origin=(0, -37.7, 0), x_dir=(1, 0, 0), z_dir=(0, 1, 0)), mode=Mode.PRIVATE) as cut_extrude_4_sk1:
        with BuildLine():
            Line((-3.7, 6.5), (-3.65658976, 0))
            Line((-3.65658976, 0), (-3.65658976, -3.60617571))
            ThreePointArc((-3.65658976, -3.60617571), (-7.976396918, -4.499974677), (-12.3, -3.624722218))
            Line((-12.3, -3.624722218), (-12.3, 0))
            Line((-12.3, 0), (-12.3, 6.5))
            ThreePointArc((-12.3, 6.5), (-8, 10.8), (-3.7, 6.5))
        make_face()
    cut_extrude_4_tool1 = extrude(cut_extrude_4_sk1.sketch, amount=-CUT_EXTRUDE_4_REACH, mode=Mode.PRIVATE) & part.part
    add(cut_extrude_4_tool1.solids().sort_by_distance((-7.989405, -37.7, -2.855539))[0], mode=Mode.SUBTRACT)

    # Sketch 11 → Cut-Extrude 6 (cut, up to next)
    with BuildSketch(Plane.XZ.offset(44.7), mode=Mode.PRIVATE) as cut_extrude_6_sk1:
        with Locations(Location((-1.05598139, -6.041375971, 0), (0, 0, 270))):
            Circle(SKETCH_11_R)
    cut_extrude_6_tool1 = extrude(cut_extrude_6_sk1.sketch, amount=-CUT_EXTRUDE_6_REACH, mode=Mode.PRIVATE) & part.part
    # Sketch 11 → Cut-Extrude 6 (cut, up to next)
    with BuildSketch(Plane.XZ.offset(44.7), mode=Mode.PRIVATE) as cut_extrude_6_sk2:
        with Locations(Location((-8.441375971, -12.84401861, 0), (0, 0, 270))):
            Circle(SKETCH_11_R)
    cut_extrude_6_tool2 = extrude(cut_extrude_6_sk2.sketch, amount=-CUT_EXTRUDE_6_REACH, mode=Mode.PRIVATE) & part.part
    # Sketch 11 → Cut-Extrude 6 (cut, up to next)
    with BuildSketch(Plane.XZ.offset(44.7), mode=Mode.PRIVATE) as cut_extrude_6_sk3:
        with Locations(Location((-15.24401861, -5.458624029, 0), (0, 0, 270))):
            Circle(SKETCH_11_R)
    cut_extrude_6_tool3 = extrude(cut_extrude_6_sk3.sketch, amount=-CUT_EXTRUDE_6_REACH, mode=Mode.PRIVATE) & part.part
    add(cut_extrude_6_tool1.solids().sort_by_distance((-1.055981, -44.7, -6.041376))[0], mode=Mode.SUBTRACT)
    add(cut_extrude_6_tool2.solids().sort_by_distance((-8.441376, -44.7, -12.844019))[0], mode=Mode.SUBTRACT)
    add(cut_extrude_6_tool3.solids().sort_by_distance((-15.244019, -44.7, -5.458624))[0], mode=Mode.SUBTRACT)


solid = part.part
